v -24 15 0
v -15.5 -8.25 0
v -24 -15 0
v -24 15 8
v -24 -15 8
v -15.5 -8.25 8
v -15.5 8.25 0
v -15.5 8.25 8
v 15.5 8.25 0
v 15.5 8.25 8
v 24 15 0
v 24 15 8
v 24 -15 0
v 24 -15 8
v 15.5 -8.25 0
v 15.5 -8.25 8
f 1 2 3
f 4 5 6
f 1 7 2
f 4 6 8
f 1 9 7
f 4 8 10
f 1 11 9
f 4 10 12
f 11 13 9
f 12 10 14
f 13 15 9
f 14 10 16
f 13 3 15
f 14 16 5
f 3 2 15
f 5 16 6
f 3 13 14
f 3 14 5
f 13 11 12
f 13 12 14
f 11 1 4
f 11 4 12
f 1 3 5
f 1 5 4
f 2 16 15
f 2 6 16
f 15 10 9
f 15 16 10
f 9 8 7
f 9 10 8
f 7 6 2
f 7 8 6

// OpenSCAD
polyhedron(points=[[-24.0, 15.0, 0.0], [-24.0, -15.0, 0.0], [-15.5, -8.25, 0.0], [-24.0, 15.0, 8.0], [-24.0, -15.0, 8.0], [-15.5, -8.25, 8.0], [-15.5, 8.25, 0.0], [-15.5, 8.25, 8.0], [15.5, 8.25, 0.0], [15.5, 8.25, 8.0], [24.0, 15.0, 0.0], [24.0, 15.0, 8.0], [24.0, -15.0, 0.0], [24.0, -15.0, 8.0], [15.5, -8.25, 0.0], [15.5, -8.25, 8.0]], faces=[[0, 2, 1], [3, 4, 5], [0, 6, 2], [3, 5, 7], [0, 8, 6], [3, 7, 9], [0, 10, 8], [3, 9, 11], [10, 12, 8], [11, 9, 13], [12, 14, 8], [13, 9, 15], [12, 1, 14], [13, 15, 4], [1, 2, 14], [4, 15, 5], [1, 12, 13], [1, 13, 4], [12, 10, 11], [12, 11, 13], [10, 0, 3], [10, 3, 11], [0, 1, 4], [0, 4, 3], [2, 15, 14], [2, 5, 15], [14, 9, 8], [14, 15, 9], [8, 7, 6], [8, 9, 7], [6, 5, 2], [6, 7, 5]], convexity=20);
